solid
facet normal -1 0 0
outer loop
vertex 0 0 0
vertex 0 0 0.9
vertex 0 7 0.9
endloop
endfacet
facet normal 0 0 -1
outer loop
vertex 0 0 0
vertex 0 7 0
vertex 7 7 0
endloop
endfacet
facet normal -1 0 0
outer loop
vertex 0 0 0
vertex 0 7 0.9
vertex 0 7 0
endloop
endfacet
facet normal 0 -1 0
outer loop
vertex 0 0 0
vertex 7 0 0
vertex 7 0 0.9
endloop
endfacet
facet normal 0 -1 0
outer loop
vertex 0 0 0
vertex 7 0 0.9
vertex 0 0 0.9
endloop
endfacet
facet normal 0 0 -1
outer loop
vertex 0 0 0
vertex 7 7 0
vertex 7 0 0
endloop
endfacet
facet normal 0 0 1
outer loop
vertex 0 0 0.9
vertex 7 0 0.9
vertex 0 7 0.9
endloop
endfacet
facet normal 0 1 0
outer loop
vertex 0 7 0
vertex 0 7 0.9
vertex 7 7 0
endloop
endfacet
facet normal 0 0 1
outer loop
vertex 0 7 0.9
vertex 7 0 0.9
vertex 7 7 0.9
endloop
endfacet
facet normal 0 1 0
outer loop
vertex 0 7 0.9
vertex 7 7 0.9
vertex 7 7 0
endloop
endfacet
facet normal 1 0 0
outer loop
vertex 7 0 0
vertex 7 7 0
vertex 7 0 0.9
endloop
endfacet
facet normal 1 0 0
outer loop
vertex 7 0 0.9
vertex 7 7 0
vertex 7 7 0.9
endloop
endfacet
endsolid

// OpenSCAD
/* Warning, this is a very basic generator with a lot of approximation 
input data : [VQFN, PMA, 7x7x0.9mm, 44, , B, C04-01288B]
generated by com.zoubworld.electronics.cad.model3d.Basic
Date : Sun Feb 15 10:50:49 CET 2026
*/

//body
color("black")
translate([0,0,0])
cube([7.0,7.0,0.9], center=false);
